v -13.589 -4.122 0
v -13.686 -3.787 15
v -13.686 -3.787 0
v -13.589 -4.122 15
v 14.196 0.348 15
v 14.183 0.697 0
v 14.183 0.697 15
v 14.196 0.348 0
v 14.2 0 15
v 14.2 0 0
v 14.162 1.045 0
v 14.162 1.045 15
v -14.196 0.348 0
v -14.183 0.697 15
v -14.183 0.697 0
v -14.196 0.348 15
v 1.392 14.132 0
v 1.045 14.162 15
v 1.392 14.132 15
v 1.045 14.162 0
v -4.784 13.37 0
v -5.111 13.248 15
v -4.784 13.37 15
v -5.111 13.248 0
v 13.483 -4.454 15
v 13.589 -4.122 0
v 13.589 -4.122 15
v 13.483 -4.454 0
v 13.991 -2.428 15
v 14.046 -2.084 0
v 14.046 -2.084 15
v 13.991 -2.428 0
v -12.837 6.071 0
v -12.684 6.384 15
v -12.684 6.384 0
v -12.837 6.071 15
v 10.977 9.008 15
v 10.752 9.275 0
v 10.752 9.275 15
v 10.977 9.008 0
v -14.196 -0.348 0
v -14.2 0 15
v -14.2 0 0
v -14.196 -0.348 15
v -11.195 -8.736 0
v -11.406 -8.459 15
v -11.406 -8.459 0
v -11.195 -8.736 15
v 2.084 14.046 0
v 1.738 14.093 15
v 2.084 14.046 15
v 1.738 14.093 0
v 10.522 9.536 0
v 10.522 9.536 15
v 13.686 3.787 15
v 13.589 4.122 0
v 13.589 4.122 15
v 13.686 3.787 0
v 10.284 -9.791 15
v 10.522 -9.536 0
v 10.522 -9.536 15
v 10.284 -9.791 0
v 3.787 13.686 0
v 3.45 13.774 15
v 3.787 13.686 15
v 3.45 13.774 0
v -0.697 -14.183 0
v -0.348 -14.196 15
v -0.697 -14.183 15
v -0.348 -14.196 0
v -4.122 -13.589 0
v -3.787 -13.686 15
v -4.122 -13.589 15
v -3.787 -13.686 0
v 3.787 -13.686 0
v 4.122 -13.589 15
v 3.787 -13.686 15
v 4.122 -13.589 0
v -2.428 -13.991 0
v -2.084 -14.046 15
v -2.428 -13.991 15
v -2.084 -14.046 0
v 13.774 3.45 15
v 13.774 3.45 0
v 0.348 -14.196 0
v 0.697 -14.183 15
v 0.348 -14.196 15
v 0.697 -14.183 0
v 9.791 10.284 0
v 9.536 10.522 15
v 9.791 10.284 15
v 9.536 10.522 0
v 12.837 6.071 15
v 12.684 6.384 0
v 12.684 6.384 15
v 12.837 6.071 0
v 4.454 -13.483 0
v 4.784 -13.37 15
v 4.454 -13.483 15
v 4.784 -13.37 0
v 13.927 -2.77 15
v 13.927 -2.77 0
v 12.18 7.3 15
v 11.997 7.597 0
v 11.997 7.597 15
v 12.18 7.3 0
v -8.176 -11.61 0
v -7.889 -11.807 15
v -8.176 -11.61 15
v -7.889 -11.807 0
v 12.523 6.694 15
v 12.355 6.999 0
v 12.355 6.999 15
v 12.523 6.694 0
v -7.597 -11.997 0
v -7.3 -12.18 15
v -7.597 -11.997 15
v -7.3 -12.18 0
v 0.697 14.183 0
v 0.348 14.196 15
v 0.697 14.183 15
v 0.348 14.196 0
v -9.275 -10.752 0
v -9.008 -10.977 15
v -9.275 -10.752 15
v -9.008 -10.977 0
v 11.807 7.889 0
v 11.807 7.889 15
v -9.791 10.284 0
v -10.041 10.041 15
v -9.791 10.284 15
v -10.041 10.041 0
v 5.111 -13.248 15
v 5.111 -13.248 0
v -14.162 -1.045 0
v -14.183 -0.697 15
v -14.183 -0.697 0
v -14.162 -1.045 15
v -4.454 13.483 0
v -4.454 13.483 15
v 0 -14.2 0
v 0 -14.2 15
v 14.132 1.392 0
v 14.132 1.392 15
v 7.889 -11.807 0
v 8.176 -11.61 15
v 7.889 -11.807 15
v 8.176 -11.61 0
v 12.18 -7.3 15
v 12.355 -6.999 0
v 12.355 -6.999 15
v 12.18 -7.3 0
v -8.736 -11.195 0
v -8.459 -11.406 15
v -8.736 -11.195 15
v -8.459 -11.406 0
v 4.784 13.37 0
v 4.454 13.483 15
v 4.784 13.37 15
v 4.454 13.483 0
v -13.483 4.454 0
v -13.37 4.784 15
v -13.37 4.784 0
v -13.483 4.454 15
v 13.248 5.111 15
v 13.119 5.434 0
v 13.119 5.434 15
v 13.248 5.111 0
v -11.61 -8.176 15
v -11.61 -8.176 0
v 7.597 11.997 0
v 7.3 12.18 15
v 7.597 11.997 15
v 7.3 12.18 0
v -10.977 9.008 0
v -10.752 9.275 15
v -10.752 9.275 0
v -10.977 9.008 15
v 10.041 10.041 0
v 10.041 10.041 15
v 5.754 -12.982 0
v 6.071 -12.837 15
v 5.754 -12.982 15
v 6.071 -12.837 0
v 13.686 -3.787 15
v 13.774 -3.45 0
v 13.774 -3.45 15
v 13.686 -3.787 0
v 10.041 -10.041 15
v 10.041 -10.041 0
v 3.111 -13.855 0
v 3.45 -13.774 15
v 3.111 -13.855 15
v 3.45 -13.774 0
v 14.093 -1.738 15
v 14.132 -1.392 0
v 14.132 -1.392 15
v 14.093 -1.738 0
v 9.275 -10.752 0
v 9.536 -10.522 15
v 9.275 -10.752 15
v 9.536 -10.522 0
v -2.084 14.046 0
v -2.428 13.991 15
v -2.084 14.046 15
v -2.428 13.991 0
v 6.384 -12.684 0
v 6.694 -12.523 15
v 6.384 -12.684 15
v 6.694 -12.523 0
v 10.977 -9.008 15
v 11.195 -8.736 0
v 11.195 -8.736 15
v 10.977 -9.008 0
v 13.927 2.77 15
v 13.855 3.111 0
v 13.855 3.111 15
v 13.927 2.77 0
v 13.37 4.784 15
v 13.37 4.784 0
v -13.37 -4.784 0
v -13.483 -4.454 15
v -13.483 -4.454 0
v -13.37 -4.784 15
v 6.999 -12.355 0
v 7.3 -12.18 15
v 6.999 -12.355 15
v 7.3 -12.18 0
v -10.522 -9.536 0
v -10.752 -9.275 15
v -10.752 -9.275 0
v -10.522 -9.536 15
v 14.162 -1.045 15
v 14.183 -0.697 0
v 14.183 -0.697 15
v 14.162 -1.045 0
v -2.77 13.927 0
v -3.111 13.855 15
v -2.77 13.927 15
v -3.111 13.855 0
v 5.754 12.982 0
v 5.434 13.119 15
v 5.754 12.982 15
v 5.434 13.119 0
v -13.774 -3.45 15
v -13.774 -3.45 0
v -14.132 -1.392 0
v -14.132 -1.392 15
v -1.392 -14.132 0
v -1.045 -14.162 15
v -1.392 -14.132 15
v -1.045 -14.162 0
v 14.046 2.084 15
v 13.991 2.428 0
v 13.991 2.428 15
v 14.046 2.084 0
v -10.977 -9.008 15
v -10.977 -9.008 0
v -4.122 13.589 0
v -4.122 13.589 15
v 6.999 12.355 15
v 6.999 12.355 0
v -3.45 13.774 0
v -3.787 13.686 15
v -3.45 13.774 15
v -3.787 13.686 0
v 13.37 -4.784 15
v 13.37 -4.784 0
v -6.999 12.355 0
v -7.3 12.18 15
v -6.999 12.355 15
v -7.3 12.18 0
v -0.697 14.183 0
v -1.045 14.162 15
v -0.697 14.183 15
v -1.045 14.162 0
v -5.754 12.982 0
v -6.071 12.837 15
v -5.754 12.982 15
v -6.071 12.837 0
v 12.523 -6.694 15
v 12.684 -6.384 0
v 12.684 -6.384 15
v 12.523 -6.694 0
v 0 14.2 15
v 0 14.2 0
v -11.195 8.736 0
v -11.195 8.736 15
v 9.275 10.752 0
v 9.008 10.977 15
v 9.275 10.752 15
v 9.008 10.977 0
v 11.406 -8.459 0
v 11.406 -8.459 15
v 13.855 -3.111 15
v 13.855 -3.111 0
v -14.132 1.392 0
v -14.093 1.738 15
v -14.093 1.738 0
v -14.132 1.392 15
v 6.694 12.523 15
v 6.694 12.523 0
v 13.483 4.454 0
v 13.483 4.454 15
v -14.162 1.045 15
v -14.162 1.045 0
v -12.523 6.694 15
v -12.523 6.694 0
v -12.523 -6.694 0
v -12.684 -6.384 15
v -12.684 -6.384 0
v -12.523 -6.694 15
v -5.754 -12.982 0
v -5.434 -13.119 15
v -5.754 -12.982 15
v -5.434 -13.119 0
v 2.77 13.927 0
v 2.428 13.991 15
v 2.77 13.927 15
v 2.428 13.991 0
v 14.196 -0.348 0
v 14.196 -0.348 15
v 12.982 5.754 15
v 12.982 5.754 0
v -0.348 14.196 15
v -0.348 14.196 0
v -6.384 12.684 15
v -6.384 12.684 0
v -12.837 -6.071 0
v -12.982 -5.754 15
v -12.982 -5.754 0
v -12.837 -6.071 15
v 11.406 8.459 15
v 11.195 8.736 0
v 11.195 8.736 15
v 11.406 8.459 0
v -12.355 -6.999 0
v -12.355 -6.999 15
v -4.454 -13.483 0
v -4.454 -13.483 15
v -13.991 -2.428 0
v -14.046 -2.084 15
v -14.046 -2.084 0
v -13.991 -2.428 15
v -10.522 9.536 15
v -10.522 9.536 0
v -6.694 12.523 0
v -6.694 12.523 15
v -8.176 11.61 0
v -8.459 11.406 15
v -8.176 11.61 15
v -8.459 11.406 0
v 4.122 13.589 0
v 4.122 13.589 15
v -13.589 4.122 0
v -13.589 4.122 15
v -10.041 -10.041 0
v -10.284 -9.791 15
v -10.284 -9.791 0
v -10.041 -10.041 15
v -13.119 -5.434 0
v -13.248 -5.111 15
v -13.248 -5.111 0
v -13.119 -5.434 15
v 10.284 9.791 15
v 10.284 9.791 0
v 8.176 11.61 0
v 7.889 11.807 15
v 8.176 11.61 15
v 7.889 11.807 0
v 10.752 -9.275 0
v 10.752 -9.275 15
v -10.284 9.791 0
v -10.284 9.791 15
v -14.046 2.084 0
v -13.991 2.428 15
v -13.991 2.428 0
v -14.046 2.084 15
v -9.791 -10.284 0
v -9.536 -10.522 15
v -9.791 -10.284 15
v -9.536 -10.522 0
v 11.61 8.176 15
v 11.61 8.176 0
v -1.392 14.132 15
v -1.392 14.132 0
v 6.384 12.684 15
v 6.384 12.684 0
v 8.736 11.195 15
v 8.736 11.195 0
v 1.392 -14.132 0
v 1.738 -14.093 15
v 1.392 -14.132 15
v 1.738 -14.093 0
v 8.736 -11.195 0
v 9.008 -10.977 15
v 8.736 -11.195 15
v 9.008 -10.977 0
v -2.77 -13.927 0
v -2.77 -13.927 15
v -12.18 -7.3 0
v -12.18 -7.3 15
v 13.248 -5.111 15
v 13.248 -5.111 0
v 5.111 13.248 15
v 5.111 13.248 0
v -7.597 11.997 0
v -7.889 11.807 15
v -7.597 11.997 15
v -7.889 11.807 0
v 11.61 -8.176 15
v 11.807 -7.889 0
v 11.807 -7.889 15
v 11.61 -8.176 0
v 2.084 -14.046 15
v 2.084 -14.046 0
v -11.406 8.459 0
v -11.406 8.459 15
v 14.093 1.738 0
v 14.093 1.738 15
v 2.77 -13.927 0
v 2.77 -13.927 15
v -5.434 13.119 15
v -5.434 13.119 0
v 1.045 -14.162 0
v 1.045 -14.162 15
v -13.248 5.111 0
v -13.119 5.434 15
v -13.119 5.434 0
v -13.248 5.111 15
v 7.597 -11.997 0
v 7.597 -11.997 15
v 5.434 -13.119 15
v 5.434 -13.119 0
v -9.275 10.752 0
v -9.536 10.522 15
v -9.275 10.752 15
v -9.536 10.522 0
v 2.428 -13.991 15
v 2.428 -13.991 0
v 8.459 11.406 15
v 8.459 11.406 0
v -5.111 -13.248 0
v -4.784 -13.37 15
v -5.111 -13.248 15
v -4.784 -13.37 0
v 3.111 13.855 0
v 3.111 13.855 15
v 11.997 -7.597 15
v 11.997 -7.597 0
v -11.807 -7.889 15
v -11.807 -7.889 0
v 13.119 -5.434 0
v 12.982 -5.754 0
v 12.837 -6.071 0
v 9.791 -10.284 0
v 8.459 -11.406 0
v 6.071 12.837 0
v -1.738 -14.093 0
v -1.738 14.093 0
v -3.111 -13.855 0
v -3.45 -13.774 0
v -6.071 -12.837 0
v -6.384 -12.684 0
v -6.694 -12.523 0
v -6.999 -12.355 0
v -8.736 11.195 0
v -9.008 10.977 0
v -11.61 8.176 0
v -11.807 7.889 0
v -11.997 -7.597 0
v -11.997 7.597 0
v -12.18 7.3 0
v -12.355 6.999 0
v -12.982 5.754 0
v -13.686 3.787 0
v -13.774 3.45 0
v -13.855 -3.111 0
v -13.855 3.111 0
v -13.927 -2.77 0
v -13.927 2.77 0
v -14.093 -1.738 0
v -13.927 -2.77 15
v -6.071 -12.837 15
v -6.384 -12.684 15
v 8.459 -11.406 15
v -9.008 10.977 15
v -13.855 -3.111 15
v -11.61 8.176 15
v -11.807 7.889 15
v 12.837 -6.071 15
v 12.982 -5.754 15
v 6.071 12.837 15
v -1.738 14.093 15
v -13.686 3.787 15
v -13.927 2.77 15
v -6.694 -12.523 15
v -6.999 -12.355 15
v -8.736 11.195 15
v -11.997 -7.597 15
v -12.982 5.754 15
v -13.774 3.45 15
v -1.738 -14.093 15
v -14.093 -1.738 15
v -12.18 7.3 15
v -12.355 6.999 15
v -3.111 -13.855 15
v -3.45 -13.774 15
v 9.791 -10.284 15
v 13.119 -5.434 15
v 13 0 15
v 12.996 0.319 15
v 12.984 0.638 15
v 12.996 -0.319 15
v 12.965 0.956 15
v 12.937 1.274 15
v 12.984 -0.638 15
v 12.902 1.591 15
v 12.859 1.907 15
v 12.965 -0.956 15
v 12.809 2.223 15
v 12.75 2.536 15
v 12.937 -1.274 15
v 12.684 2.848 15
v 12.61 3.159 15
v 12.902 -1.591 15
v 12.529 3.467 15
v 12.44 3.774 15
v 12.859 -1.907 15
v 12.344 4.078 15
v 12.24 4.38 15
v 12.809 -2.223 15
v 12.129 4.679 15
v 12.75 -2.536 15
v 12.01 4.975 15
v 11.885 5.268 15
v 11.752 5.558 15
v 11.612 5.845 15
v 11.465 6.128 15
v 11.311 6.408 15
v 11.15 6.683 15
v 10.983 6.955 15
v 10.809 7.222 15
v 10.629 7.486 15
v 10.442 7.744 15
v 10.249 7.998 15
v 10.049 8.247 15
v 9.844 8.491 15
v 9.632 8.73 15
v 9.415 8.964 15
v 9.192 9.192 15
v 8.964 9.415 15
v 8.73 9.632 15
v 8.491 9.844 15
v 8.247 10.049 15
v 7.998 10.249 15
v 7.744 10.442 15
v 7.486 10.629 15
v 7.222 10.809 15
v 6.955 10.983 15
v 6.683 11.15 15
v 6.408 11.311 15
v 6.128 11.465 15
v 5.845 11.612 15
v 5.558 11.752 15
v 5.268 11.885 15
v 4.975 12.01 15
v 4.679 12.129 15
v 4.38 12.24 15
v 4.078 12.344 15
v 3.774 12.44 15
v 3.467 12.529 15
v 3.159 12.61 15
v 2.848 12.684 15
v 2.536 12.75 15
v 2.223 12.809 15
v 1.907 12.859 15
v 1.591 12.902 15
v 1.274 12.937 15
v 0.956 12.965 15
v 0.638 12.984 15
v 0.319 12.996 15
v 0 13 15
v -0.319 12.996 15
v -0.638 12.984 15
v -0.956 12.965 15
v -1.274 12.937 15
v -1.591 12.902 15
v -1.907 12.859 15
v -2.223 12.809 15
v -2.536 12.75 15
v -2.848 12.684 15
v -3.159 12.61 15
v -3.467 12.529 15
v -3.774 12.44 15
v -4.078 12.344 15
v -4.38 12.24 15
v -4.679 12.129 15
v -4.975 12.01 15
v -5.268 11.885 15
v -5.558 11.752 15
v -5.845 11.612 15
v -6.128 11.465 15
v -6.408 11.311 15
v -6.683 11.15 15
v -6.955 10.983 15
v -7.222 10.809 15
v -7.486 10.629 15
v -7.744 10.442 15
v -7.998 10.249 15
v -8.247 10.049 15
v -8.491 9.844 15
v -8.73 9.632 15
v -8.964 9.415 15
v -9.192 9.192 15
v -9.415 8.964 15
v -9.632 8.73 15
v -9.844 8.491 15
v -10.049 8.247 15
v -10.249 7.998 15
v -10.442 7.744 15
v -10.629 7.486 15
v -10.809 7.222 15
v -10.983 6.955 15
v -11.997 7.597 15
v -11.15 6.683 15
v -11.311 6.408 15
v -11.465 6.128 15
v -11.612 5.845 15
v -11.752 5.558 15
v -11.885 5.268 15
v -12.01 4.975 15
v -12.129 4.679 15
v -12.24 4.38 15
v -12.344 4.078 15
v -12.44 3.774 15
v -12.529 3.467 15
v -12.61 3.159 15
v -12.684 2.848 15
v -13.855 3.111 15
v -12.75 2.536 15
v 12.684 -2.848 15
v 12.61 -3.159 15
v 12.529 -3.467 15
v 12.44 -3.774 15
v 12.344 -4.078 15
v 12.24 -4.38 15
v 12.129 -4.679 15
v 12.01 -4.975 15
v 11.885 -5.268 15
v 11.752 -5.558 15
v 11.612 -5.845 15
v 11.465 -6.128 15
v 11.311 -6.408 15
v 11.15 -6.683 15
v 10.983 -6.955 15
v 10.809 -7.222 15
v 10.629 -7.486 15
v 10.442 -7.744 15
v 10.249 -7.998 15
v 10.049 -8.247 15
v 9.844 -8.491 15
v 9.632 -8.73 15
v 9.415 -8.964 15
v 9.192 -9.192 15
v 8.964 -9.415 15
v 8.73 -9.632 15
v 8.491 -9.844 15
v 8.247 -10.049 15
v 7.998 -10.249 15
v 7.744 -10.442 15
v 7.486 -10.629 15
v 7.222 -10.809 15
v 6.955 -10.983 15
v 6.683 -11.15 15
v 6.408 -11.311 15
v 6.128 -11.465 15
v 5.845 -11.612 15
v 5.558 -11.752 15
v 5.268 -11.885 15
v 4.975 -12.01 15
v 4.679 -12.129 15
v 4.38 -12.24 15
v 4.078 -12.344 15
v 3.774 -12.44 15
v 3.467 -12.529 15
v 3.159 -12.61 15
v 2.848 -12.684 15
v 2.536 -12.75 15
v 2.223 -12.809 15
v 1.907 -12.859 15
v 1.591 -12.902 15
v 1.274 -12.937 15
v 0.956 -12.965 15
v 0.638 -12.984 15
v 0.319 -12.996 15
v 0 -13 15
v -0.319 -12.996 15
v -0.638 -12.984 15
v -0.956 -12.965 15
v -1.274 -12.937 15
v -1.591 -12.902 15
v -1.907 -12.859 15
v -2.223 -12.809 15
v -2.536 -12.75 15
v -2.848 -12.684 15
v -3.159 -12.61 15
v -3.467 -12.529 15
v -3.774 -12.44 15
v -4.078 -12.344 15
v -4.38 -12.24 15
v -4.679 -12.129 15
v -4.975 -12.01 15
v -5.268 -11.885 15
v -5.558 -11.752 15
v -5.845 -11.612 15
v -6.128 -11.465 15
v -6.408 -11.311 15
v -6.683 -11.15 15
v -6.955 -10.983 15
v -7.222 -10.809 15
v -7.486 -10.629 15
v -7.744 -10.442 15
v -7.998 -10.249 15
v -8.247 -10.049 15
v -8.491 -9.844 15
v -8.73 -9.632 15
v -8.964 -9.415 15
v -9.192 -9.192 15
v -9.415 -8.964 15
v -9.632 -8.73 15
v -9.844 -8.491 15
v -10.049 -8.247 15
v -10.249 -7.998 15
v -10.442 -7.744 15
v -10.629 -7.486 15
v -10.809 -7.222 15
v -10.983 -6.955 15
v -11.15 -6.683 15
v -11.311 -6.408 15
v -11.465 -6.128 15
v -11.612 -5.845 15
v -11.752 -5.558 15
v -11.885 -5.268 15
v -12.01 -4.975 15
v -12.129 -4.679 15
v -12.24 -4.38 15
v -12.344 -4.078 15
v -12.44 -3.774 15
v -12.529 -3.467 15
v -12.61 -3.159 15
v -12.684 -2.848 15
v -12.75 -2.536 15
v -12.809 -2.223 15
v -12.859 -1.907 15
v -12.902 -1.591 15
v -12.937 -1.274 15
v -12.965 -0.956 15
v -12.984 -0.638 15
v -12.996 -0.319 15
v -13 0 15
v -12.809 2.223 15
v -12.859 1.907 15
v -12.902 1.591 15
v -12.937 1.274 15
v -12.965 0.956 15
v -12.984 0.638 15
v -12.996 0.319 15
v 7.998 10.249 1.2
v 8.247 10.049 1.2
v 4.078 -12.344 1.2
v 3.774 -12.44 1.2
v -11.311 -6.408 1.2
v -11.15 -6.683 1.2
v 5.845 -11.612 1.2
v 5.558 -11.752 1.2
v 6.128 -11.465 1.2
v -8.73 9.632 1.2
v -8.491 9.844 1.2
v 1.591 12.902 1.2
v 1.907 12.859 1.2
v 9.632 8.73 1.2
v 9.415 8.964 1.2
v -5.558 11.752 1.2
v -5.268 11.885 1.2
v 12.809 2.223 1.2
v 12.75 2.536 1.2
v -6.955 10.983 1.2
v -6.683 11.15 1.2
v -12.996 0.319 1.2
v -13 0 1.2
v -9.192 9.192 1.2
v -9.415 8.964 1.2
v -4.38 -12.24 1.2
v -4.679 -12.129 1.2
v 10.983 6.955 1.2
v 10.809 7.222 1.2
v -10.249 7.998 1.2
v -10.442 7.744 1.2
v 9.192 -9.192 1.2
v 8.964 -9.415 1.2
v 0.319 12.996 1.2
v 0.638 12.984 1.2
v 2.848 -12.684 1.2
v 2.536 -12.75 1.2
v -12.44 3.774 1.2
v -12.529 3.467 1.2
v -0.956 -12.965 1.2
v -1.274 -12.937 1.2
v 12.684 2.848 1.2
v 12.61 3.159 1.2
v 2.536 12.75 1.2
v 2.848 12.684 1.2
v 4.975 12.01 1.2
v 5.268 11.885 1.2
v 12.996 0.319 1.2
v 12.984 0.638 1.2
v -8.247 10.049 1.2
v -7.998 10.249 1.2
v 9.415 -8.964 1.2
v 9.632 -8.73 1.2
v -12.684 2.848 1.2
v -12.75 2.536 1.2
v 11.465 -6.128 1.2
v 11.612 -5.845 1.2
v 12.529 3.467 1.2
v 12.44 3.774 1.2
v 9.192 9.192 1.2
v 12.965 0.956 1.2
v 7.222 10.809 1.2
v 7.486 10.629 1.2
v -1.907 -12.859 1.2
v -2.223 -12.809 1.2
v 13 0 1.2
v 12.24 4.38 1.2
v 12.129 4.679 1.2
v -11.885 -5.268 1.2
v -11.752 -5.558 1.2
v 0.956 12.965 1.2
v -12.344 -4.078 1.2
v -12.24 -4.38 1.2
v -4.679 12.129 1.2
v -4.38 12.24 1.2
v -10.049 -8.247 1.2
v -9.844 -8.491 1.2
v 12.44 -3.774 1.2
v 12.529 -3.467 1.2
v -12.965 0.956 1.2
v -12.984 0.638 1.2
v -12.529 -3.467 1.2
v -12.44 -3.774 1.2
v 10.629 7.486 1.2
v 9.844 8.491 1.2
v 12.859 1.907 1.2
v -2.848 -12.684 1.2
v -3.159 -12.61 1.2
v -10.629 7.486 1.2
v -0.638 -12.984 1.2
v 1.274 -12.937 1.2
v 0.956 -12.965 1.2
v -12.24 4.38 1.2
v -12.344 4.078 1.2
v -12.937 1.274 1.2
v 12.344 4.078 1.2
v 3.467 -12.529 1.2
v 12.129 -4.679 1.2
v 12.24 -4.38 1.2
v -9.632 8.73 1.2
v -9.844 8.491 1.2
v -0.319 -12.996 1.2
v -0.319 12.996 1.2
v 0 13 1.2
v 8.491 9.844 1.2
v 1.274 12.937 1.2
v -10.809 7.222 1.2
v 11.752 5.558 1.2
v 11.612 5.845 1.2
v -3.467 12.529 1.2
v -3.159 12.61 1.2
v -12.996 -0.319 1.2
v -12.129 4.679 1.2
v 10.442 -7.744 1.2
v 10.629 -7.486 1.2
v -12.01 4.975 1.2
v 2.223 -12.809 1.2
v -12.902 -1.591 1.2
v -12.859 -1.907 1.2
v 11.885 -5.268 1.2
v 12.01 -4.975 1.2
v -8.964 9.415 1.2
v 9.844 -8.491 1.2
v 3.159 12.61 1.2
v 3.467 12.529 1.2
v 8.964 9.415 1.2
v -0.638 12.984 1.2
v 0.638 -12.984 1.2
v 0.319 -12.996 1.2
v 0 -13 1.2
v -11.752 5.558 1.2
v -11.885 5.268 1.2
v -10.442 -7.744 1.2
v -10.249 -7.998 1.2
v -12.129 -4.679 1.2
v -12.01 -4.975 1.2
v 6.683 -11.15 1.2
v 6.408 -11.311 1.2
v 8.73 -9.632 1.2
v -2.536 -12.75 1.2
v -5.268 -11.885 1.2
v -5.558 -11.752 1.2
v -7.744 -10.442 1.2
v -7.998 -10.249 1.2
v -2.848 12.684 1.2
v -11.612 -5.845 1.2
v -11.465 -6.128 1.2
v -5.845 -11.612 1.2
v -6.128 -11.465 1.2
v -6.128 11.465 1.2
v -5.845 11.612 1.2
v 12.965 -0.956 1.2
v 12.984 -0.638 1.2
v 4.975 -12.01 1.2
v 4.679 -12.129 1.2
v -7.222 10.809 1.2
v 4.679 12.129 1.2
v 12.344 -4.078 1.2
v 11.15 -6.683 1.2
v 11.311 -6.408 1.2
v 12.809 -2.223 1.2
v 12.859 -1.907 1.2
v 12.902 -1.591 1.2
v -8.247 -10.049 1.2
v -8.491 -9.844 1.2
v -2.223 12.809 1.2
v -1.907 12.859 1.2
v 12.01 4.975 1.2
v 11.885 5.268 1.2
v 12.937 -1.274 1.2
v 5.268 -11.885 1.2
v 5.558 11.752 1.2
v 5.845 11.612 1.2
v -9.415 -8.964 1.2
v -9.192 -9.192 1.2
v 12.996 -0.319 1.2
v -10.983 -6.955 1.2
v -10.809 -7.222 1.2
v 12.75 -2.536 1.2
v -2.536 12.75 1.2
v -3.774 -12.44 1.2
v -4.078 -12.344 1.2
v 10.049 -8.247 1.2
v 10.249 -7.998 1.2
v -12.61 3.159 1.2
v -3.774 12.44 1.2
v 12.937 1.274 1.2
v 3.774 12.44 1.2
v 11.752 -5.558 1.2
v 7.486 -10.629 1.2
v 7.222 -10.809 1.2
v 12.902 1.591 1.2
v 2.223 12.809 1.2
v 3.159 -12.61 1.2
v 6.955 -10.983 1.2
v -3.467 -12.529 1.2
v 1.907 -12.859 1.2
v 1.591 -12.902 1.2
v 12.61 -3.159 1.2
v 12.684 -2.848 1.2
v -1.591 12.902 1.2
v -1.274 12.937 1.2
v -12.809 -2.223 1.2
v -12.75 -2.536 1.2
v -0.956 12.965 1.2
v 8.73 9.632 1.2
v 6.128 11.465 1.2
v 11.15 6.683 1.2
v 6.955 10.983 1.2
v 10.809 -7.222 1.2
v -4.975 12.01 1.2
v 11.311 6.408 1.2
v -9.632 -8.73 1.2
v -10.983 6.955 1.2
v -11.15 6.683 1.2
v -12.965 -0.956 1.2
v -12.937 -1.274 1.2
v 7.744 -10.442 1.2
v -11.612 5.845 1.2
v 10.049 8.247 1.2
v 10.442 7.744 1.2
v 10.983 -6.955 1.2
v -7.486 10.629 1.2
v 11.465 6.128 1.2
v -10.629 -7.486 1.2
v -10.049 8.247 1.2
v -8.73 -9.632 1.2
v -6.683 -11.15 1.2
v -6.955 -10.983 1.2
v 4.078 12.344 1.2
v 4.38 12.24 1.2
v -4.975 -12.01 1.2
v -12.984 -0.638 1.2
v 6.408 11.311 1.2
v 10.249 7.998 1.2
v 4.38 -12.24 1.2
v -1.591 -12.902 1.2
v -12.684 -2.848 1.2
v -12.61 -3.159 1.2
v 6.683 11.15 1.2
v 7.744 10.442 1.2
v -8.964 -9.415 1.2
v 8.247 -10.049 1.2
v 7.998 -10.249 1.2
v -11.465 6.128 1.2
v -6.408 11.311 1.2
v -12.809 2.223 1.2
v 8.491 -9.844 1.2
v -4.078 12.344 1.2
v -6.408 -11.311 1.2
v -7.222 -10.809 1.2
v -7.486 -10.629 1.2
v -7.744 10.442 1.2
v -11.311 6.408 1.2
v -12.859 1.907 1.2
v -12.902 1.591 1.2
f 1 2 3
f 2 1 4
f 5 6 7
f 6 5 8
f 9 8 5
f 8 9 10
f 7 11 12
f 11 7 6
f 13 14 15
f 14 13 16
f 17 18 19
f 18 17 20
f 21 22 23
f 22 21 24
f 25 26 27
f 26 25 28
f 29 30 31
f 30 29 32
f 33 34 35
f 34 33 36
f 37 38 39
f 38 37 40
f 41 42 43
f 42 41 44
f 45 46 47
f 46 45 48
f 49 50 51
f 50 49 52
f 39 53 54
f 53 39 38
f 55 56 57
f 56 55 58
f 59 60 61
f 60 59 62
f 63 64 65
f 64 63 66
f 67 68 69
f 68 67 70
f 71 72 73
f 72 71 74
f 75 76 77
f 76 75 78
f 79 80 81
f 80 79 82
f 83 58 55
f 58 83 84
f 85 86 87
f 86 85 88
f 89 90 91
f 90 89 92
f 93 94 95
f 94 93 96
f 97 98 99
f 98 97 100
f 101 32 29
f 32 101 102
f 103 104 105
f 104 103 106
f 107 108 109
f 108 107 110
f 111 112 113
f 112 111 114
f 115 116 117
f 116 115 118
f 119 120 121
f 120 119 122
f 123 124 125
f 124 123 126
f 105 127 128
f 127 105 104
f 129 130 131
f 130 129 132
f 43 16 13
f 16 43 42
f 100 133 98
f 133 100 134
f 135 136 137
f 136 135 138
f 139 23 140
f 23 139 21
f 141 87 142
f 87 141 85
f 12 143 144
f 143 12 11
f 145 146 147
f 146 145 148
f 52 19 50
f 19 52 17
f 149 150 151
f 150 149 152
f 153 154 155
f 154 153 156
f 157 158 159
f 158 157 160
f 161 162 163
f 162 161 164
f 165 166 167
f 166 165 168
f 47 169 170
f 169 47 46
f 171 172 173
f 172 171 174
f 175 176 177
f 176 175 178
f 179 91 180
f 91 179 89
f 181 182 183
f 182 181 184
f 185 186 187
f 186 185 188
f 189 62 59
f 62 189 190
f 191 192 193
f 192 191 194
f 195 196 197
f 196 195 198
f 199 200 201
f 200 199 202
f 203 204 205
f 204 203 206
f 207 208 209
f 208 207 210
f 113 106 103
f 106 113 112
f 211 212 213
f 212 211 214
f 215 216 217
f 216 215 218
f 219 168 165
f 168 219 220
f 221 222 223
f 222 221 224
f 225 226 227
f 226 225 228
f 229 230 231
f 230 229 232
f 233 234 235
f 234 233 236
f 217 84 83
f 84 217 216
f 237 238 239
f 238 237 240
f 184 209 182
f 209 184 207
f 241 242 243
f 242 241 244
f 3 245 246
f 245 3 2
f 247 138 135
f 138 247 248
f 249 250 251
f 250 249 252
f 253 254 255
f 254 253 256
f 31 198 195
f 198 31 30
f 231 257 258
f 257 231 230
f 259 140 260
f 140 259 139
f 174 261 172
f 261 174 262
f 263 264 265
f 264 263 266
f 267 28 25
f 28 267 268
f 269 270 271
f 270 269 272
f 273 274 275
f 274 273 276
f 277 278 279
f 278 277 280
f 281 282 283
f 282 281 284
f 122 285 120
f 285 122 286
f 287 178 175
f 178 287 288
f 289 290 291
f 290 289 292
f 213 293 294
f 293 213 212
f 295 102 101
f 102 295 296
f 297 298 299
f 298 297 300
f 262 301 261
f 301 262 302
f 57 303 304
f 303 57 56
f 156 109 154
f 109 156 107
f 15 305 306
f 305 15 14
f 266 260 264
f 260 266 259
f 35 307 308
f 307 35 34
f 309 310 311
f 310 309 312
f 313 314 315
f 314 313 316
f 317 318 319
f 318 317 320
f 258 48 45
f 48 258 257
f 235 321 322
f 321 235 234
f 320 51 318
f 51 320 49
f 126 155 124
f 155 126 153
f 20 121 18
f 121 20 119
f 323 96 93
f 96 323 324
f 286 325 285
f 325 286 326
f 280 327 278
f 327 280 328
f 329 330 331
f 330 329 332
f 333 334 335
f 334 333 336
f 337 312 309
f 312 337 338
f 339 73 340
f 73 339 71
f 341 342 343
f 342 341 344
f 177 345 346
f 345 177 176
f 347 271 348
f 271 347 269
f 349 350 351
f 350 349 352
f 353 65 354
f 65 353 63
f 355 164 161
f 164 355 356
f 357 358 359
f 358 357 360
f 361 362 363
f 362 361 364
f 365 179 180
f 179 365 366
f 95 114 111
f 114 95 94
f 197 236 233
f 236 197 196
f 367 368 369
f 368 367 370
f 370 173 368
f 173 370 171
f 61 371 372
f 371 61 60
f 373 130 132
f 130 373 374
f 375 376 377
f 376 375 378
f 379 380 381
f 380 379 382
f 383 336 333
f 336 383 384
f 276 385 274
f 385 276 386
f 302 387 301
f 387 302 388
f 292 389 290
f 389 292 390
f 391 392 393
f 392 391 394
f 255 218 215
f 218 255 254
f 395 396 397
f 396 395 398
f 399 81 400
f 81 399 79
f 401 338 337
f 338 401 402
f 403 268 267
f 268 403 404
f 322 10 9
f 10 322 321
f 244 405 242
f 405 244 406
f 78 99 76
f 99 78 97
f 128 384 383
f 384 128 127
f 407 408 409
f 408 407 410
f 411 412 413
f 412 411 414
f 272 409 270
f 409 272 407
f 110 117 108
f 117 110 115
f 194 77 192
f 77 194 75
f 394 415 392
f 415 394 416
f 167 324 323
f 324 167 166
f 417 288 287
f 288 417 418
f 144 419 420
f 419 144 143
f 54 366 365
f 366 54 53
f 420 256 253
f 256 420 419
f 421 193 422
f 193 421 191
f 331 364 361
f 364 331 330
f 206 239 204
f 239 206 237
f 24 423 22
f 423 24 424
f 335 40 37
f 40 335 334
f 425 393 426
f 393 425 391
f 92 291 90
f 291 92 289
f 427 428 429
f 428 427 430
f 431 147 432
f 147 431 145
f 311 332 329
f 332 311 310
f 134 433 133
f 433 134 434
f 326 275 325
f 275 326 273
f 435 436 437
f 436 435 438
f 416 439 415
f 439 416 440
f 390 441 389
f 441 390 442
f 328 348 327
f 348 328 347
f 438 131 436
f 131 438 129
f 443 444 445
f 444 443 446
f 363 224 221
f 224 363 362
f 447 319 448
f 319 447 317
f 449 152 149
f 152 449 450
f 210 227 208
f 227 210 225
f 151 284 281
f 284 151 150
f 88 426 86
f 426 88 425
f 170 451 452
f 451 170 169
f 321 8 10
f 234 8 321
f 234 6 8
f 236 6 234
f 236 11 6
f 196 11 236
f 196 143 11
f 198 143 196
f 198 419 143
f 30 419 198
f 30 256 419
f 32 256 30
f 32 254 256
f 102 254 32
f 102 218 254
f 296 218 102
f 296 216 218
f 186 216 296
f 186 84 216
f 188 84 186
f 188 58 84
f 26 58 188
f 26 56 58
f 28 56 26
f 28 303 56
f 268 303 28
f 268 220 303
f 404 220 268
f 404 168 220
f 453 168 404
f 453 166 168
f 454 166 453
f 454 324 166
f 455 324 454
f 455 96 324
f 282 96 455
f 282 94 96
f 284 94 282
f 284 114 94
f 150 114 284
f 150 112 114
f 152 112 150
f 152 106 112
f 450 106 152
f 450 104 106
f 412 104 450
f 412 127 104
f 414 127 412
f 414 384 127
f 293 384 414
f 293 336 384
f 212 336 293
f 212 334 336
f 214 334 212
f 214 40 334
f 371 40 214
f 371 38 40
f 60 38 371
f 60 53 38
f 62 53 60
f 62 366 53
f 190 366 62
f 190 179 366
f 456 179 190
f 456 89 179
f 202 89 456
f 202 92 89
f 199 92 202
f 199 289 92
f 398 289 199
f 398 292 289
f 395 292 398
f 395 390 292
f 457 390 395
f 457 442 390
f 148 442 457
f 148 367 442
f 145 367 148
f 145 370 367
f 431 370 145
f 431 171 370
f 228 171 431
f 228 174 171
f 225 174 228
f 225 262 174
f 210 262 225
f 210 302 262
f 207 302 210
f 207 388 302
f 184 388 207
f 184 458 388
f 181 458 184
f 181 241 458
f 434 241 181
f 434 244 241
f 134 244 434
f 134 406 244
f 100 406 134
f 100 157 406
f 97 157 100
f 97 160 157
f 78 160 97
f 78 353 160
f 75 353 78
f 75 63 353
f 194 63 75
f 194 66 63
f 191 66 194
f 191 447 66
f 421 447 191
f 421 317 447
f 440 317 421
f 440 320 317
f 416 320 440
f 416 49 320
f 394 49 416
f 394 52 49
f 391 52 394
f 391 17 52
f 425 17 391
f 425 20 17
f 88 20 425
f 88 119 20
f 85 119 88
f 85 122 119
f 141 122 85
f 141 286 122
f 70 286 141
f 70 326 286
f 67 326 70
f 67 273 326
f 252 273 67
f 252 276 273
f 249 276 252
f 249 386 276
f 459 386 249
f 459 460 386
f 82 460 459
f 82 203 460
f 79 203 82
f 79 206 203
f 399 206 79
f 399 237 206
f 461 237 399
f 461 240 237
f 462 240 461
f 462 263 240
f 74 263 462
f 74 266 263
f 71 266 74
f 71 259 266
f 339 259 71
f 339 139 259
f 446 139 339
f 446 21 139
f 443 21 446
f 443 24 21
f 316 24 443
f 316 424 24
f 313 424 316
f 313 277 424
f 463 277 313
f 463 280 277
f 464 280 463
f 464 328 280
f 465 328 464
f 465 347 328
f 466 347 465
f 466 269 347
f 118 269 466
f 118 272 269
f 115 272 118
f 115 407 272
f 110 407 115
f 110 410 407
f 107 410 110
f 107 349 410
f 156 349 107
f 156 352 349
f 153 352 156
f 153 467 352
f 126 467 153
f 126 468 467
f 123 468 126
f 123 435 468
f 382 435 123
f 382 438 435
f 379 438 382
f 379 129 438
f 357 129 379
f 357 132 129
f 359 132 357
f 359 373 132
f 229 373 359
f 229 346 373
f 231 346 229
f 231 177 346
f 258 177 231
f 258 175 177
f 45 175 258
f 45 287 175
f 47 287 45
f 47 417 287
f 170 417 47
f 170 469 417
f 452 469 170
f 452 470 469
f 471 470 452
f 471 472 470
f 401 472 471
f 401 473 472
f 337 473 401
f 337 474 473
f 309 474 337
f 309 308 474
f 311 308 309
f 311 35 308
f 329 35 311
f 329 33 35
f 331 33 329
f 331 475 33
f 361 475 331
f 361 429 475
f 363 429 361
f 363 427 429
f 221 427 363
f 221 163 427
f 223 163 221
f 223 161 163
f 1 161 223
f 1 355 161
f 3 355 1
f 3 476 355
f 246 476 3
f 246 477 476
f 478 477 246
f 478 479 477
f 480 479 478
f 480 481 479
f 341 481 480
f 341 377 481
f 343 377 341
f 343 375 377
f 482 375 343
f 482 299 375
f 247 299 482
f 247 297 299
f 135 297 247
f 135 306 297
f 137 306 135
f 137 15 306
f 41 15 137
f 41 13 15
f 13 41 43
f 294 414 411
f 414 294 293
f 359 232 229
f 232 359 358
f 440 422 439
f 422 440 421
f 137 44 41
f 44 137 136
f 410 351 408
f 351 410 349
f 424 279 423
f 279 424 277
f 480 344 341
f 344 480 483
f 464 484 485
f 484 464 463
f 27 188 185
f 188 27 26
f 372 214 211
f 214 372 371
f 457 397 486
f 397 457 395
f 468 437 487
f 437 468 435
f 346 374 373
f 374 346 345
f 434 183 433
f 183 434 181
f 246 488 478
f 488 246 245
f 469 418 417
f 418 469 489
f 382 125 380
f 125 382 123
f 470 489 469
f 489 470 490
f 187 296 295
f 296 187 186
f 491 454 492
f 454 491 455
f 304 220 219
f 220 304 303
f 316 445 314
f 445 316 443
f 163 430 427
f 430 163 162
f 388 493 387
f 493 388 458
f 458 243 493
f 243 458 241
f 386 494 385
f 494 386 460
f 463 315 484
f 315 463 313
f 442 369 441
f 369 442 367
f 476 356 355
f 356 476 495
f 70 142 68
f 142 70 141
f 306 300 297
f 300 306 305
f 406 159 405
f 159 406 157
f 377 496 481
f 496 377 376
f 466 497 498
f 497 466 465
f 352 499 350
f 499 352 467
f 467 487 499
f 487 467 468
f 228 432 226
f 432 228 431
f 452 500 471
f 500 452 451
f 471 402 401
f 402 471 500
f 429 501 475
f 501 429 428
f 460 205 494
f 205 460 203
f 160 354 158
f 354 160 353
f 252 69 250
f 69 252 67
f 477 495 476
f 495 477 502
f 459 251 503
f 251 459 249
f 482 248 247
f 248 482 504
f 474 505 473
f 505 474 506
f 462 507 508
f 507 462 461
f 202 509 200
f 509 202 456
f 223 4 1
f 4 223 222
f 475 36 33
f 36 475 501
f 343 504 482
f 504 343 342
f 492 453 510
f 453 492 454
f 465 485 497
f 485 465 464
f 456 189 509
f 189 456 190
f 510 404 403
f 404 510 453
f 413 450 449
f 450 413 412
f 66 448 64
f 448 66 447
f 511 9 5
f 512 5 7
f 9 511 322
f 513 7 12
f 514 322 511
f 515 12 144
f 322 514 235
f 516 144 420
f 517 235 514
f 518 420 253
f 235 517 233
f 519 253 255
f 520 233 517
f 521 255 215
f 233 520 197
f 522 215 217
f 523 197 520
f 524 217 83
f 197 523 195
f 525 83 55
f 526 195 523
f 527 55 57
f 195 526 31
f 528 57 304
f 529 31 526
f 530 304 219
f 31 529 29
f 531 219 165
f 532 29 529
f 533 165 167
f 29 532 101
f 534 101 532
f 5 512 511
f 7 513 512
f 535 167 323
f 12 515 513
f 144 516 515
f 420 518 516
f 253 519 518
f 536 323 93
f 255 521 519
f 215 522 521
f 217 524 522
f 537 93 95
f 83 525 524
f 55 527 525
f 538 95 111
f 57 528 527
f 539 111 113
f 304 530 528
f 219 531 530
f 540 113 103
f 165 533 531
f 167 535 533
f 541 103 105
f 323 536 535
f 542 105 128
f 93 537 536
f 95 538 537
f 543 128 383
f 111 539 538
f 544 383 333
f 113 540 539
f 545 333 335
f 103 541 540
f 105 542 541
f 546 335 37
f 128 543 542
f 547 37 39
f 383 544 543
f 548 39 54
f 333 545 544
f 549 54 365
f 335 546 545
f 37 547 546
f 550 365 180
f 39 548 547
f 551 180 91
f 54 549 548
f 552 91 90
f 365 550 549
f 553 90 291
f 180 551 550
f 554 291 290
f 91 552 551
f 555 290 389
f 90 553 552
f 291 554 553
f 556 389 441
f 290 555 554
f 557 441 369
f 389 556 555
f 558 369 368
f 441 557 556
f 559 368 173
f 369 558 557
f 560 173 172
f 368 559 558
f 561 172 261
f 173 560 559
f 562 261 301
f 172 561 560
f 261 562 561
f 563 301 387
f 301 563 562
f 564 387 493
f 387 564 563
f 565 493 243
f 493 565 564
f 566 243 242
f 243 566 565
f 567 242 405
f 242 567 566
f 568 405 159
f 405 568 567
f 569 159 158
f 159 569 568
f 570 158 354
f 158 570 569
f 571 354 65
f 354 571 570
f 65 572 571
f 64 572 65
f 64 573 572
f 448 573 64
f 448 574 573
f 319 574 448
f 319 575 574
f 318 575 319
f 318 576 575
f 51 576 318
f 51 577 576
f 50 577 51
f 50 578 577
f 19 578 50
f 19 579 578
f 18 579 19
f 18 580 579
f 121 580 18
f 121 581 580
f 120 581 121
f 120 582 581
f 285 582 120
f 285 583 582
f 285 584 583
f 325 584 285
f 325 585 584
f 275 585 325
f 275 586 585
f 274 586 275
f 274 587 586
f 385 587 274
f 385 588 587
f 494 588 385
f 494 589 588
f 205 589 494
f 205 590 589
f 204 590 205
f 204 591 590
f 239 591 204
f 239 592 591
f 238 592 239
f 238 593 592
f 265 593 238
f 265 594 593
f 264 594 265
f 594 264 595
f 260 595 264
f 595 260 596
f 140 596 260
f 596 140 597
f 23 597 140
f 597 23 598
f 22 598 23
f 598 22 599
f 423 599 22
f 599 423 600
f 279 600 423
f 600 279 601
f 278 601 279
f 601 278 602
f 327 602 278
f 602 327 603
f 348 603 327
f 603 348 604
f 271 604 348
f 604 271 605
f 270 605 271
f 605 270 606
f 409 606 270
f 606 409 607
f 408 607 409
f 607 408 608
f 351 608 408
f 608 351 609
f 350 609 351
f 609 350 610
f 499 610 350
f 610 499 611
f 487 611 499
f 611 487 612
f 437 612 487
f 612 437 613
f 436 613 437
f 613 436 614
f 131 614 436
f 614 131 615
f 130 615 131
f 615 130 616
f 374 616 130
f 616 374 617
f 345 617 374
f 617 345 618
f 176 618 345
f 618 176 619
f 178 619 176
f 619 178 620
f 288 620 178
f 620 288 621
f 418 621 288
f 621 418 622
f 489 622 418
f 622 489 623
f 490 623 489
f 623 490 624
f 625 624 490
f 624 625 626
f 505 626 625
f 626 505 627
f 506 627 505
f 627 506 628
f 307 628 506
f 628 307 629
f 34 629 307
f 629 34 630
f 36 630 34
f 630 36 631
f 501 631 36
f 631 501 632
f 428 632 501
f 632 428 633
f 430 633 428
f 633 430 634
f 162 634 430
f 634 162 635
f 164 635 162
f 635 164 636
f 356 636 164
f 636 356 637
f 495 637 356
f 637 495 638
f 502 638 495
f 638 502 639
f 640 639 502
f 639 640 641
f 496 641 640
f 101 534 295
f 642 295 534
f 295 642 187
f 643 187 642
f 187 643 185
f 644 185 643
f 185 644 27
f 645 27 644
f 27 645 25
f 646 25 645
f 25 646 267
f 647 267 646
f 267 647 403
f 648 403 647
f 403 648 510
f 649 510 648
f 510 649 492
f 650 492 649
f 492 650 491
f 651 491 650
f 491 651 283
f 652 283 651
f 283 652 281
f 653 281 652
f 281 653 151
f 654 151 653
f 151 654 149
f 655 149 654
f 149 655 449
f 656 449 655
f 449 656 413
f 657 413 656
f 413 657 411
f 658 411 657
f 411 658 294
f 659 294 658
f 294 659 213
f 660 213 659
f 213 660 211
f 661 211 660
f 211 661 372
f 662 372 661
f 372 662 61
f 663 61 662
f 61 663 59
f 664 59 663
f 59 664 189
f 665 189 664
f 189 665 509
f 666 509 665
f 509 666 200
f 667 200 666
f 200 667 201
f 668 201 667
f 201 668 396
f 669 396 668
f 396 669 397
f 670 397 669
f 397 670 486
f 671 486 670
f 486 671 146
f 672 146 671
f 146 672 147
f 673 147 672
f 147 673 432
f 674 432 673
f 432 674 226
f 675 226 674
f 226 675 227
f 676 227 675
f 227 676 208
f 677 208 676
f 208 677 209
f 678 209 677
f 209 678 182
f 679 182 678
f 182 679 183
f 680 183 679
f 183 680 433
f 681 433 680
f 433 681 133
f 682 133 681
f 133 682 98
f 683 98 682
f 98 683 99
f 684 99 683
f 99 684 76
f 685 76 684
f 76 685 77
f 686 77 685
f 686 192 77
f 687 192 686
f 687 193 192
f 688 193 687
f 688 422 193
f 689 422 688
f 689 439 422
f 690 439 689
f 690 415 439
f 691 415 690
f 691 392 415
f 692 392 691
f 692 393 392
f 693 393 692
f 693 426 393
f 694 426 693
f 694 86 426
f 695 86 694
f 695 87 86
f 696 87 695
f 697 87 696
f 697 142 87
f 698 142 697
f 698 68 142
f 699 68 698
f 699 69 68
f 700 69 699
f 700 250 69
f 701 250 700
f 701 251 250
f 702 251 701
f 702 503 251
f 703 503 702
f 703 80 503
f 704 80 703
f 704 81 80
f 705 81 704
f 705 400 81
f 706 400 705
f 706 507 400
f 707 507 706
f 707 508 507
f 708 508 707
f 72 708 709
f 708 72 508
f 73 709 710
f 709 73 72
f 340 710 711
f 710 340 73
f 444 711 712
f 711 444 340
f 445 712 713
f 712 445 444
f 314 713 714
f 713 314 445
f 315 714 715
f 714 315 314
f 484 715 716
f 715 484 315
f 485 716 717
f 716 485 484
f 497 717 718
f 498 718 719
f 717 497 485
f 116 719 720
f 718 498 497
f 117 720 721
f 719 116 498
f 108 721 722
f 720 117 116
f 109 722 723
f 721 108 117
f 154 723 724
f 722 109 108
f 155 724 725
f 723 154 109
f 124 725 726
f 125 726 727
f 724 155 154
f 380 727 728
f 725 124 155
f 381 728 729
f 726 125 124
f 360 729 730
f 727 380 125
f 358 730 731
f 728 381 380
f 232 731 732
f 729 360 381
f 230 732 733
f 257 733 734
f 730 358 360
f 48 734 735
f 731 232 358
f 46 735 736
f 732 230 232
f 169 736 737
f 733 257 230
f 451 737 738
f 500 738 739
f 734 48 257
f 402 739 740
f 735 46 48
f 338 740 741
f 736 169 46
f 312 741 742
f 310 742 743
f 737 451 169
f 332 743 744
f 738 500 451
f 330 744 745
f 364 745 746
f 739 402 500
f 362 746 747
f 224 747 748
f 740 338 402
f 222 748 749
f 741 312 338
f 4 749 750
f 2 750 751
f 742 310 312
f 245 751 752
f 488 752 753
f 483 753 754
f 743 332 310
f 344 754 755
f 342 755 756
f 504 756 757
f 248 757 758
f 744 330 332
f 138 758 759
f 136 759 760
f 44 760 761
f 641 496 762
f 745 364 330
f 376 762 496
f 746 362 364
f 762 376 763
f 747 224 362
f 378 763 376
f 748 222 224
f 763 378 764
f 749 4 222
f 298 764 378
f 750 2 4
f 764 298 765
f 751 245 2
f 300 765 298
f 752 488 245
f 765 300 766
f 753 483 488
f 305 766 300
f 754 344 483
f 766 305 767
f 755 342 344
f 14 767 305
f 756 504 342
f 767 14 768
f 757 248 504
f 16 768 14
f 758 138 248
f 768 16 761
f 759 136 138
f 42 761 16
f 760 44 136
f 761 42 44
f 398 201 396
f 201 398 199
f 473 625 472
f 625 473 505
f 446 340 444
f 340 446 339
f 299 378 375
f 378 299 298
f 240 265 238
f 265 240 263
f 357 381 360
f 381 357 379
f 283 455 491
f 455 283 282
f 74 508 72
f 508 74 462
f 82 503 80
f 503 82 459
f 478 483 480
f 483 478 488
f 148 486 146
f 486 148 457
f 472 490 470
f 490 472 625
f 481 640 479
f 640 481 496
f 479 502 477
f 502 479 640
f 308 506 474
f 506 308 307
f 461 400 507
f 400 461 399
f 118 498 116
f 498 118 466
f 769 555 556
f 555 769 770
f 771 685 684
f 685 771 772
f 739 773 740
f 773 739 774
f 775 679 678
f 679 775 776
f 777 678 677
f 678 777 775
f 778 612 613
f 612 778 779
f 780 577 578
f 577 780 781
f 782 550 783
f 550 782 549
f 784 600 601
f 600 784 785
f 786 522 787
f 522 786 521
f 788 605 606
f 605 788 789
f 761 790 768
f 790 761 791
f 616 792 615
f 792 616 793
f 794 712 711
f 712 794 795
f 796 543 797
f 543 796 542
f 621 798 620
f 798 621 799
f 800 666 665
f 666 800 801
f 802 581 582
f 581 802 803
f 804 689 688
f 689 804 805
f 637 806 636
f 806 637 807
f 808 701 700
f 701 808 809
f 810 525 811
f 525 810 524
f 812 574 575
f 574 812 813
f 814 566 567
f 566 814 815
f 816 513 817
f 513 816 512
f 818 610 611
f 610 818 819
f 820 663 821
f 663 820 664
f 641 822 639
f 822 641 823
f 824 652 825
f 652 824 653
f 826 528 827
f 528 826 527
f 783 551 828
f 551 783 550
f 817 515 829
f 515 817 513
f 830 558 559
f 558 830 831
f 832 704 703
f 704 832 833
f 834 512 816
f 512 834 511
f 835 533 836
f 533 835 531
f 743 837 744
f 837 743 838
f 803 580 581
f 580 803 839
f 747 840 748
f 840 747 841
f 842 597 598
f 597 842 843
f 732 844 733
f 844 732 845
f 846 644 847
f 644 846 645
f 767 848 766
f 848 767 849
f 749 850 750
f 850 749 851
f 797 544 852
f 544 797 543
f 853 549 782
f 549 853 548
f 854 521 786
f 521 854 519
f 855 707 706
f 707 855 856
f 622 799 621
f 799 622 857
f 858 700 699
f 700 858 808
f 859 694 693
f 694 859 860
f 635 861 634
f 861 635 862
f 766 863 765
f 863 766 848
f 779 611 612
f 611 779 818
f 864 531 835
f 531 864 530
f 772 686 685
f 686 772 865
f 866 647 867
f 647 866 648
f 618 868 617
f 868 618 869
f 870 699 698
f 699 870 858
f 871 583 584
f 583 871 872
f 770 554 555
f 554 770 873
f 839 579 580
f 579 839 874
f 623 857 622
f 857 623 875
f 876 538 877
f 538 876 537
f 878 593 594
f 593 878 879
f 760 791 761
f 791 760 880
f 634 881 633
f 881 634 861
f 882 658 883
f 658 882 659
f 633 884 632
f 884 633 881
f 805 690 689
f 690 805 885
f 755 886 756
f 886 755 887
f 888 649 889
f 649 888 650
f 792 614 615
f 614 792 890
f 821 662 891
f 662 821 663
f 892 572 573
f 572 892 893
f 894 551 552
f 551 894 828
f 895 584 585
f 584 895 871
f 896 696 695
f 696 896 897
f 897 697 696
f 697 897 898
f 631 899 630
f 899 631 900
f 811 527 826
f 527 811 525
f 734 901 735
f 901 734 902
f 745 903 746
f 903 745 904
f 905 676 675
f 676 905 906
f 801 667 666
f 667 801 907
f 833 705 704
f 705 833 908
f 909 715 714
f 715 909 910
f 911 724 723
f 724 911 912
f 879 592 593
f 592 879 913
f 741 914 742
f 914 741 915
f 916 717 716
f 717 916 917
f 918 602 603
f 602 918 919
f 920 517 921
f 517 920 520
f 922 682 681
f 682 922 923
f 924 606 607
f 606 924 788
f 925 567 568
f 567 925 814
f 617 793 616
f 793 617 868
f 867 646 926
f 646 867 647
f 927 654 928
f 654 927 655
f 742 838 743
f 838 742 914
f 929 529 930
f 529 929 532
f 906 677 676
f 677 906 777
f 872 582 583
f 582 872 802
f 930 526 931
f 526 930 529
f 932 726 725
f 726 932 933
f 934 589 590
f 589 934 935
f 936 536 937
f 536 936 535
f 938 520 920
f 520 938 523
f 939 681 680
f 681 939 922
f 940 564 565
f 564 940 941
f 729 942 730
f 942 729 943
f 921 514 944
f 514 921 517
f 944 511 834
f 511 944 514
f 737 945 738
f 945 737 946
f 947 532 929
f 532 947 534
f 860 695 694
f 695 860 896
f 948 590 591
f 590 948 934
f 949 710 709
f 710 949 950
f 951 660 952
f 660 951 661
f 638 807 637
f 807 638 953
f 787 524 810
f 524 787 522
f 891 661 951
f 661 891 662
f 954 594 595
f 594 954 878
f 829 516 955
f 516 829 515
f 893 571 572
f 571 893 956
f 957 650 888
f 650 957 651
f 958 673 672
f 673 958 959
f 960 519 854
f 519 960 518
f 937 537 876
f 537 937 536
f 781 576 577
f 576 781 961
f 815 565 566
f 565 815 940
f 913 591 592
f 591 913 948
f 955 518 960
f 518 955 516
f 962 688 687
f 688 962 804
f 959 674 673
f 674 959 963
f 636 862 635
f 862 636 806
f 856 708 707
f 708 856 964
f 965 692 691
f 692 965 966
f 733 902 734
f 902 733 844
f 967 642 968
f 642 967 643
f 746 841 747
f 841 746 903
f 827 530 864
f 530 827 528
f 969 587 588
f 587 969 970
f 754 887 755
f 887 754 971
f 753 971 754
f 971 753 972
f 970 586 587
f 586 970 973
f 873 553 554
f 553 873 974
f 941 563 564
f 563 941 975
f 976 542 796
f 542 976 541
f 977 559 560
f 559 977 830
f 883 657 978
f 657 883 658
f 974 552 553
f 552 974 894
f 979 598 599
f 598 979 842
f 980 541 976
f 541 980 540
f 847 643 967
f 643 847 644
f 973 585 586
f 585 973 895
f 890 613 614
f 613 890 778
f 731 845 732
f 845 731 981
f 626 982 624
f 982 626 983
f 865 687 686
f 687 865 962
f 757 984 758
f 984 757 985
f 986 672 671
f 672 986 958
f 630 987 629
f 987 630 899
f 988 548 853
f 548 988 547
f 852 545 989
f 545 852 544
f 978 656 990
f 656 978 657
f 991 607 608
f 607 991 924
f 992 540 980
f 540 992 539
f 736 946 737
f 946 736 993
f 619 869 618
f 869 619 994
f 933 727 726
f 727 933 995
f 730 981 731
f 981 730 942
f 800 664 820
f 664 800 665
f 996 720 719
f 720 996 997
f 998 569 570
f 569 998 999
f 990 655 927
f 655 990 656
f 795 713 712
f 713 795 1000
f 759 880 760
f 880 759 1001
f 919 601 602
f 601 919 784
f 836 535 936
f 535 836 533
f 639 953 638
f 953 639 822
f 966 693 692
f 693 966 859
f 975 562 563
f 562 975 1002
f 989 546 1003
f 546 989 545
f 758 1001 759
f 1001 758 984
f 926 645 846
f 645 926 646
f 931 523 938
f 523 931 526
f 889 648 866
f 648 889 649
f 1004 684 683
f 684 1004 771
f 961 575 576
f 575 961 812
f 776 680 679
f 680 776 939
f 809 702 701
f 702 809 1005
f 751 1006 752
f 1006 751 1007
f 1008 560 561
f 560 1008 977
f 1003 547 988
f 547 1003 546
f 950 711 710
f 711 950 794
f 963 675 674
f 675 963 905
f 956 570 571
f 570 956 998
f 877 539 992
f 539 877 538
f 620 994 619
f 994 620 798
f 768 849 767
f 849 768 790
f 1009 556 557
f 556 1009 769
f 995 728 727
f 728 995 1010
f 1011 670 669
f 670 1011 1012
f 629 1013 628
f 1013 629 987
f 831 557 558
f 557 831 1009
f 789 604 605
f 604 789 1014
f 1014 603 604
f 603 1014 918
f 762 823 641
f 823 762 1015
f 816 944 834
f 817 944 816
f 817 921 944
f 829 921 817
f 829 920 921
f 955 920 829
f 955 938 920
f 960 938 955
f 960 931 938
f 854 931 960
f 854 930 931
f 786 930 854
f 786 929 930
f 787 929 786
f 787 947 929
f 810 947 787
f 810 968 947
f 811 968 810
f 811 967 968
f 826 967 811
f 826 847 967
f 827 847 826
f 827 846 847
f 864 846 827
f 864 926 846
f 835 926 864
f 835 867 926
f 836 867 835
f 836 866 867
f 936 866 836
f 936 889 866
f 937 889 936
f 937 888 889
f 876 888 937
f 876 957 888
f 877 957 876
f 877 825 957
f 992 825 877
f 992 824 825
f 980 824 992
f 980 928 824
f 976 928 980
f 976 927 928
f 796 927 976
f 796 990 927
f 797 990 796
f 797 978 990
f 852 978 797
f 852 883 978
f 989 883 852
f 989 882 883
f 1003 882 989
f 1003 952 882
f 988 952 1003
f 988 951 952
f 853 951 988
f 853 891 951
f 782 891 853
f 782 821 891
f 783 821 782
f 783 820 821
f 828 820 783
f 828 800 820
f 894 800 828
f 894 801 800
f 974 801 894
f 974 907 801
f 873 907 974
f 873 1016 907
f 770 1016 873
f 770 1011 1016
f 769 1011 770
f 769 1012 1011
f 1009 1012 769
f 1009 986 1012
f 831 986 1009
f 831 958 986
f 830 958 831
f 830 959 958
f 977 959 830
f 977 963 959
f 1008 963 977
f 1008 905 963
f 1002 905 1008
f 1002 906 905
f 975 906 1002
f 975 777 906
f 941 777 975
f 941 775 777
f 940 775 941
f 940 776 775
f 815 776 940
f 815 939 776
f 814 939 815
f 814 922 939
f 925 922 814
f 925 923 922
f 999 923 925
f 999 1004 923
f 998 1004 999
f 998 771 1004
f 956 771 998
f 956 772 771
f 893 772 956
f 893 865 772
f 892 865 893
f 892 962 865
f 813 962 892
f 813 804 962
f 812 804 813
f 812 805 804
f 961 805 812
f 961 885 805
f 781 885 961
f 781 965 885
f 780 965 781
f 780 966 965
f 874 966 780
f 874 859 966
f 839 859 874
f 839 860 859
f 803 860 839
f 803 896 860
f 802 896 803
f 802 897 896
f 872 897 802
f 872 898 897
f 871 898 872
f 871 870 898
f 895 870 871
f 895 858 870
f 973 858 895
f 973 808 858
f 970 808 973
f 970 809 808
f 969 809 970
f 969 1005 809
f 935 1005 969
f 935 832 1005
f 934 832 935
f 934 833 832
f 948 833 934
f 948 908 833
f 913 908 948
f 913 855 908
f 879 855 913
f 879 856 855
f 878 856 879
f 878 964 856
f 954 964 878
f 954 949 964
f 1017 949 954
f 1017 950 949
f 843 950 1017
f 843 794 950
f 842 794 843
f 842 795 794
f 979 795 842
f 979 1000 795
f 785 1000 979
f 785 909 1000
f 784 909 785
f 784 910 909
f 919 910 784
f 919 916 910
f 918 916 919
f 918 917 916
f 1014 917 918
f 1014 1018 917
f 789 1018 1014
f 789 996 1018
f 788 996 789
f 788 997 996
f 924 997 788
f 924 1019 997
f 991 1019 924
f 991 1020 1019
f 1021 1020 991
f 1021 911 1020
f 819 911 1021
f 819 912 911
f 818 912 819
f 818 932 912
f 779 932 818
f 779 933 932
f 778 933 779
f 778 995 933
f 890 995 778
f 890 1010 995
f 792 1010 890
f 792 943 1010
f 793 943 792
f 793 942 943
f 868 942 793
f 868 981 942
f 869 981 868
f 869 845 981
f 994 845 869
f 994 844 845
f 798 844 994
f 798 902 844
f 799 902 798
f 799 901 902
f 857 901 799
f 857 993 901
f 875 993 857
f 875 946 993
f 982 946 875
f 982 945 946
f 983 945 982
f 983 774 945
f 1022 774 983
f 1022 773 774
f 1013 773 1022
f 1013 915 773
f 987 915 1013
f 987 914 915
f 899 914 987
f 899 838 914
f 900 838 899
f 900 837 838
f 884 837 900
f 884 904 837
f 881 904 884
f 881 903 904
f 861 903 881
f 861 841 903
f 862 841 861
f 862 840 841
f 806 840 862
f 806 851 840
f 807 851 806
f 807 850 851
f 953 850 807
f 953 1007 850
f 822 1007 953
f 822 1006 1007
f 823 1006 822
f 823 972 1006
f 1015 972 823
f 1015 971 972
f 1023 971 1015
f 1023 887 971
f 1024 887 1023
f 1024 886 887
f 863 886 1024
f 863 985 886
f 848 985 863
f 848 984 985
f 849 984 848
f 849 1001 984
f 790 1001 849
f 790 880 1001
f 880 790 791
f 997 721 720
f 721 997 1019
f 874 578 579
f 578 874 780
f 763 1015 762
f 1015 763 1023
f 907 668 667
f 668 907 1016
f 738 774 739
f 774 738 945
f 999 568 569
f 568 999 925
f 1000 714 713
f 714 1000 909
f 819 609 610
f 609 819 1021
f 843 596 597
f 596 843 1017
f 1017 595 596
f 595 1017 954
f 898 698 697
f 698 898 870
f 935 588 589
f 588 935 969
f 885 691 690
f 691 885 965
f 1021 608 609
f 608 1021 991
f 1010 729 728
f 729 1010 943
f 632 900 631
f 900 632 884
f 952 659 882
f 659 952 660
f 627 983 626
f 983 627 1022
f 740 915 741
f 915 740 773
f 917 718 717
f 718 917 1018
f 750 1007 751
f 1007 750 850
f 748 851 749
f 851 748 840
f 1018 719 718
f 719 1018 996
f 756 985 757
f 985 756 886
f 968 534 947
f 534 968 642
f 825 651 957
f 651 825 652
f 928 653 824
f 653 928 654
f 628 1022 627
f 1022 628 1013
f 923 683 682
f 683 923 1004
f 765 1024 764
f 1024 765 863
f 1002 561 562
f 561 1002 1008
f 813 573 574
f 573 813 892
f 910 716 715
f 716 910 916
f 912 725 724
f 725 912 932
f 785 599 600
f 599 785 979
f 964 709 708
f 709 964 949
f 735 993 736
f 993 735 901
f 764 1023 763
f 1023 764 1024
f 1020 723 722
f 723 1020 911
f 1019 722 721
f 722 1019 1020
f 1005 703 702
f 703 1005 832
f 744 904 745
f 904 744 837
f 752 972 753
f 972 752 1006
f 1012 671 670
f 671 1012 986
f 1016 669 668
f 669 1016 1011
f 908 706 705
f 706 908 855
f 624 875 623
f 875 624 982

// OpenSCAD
inner = 26;
thickness = 3 * 0.4;
outer = inner + 2 * thickness;
height = 15;

$fn = 256;

module cap() {
    difference() {
        cylinder(h = height, r = outer/2);
    
        translate([0,0,thickness])
        cylinder(h = height, r = inner/2);
    }
}

module test() {
    difference() {
        cylinder(h = 3, r = outer/2);
    
        translate([0,0,-1])
        cylinder(h = height, r = inner/2);
    }
}

//test();
cap();
